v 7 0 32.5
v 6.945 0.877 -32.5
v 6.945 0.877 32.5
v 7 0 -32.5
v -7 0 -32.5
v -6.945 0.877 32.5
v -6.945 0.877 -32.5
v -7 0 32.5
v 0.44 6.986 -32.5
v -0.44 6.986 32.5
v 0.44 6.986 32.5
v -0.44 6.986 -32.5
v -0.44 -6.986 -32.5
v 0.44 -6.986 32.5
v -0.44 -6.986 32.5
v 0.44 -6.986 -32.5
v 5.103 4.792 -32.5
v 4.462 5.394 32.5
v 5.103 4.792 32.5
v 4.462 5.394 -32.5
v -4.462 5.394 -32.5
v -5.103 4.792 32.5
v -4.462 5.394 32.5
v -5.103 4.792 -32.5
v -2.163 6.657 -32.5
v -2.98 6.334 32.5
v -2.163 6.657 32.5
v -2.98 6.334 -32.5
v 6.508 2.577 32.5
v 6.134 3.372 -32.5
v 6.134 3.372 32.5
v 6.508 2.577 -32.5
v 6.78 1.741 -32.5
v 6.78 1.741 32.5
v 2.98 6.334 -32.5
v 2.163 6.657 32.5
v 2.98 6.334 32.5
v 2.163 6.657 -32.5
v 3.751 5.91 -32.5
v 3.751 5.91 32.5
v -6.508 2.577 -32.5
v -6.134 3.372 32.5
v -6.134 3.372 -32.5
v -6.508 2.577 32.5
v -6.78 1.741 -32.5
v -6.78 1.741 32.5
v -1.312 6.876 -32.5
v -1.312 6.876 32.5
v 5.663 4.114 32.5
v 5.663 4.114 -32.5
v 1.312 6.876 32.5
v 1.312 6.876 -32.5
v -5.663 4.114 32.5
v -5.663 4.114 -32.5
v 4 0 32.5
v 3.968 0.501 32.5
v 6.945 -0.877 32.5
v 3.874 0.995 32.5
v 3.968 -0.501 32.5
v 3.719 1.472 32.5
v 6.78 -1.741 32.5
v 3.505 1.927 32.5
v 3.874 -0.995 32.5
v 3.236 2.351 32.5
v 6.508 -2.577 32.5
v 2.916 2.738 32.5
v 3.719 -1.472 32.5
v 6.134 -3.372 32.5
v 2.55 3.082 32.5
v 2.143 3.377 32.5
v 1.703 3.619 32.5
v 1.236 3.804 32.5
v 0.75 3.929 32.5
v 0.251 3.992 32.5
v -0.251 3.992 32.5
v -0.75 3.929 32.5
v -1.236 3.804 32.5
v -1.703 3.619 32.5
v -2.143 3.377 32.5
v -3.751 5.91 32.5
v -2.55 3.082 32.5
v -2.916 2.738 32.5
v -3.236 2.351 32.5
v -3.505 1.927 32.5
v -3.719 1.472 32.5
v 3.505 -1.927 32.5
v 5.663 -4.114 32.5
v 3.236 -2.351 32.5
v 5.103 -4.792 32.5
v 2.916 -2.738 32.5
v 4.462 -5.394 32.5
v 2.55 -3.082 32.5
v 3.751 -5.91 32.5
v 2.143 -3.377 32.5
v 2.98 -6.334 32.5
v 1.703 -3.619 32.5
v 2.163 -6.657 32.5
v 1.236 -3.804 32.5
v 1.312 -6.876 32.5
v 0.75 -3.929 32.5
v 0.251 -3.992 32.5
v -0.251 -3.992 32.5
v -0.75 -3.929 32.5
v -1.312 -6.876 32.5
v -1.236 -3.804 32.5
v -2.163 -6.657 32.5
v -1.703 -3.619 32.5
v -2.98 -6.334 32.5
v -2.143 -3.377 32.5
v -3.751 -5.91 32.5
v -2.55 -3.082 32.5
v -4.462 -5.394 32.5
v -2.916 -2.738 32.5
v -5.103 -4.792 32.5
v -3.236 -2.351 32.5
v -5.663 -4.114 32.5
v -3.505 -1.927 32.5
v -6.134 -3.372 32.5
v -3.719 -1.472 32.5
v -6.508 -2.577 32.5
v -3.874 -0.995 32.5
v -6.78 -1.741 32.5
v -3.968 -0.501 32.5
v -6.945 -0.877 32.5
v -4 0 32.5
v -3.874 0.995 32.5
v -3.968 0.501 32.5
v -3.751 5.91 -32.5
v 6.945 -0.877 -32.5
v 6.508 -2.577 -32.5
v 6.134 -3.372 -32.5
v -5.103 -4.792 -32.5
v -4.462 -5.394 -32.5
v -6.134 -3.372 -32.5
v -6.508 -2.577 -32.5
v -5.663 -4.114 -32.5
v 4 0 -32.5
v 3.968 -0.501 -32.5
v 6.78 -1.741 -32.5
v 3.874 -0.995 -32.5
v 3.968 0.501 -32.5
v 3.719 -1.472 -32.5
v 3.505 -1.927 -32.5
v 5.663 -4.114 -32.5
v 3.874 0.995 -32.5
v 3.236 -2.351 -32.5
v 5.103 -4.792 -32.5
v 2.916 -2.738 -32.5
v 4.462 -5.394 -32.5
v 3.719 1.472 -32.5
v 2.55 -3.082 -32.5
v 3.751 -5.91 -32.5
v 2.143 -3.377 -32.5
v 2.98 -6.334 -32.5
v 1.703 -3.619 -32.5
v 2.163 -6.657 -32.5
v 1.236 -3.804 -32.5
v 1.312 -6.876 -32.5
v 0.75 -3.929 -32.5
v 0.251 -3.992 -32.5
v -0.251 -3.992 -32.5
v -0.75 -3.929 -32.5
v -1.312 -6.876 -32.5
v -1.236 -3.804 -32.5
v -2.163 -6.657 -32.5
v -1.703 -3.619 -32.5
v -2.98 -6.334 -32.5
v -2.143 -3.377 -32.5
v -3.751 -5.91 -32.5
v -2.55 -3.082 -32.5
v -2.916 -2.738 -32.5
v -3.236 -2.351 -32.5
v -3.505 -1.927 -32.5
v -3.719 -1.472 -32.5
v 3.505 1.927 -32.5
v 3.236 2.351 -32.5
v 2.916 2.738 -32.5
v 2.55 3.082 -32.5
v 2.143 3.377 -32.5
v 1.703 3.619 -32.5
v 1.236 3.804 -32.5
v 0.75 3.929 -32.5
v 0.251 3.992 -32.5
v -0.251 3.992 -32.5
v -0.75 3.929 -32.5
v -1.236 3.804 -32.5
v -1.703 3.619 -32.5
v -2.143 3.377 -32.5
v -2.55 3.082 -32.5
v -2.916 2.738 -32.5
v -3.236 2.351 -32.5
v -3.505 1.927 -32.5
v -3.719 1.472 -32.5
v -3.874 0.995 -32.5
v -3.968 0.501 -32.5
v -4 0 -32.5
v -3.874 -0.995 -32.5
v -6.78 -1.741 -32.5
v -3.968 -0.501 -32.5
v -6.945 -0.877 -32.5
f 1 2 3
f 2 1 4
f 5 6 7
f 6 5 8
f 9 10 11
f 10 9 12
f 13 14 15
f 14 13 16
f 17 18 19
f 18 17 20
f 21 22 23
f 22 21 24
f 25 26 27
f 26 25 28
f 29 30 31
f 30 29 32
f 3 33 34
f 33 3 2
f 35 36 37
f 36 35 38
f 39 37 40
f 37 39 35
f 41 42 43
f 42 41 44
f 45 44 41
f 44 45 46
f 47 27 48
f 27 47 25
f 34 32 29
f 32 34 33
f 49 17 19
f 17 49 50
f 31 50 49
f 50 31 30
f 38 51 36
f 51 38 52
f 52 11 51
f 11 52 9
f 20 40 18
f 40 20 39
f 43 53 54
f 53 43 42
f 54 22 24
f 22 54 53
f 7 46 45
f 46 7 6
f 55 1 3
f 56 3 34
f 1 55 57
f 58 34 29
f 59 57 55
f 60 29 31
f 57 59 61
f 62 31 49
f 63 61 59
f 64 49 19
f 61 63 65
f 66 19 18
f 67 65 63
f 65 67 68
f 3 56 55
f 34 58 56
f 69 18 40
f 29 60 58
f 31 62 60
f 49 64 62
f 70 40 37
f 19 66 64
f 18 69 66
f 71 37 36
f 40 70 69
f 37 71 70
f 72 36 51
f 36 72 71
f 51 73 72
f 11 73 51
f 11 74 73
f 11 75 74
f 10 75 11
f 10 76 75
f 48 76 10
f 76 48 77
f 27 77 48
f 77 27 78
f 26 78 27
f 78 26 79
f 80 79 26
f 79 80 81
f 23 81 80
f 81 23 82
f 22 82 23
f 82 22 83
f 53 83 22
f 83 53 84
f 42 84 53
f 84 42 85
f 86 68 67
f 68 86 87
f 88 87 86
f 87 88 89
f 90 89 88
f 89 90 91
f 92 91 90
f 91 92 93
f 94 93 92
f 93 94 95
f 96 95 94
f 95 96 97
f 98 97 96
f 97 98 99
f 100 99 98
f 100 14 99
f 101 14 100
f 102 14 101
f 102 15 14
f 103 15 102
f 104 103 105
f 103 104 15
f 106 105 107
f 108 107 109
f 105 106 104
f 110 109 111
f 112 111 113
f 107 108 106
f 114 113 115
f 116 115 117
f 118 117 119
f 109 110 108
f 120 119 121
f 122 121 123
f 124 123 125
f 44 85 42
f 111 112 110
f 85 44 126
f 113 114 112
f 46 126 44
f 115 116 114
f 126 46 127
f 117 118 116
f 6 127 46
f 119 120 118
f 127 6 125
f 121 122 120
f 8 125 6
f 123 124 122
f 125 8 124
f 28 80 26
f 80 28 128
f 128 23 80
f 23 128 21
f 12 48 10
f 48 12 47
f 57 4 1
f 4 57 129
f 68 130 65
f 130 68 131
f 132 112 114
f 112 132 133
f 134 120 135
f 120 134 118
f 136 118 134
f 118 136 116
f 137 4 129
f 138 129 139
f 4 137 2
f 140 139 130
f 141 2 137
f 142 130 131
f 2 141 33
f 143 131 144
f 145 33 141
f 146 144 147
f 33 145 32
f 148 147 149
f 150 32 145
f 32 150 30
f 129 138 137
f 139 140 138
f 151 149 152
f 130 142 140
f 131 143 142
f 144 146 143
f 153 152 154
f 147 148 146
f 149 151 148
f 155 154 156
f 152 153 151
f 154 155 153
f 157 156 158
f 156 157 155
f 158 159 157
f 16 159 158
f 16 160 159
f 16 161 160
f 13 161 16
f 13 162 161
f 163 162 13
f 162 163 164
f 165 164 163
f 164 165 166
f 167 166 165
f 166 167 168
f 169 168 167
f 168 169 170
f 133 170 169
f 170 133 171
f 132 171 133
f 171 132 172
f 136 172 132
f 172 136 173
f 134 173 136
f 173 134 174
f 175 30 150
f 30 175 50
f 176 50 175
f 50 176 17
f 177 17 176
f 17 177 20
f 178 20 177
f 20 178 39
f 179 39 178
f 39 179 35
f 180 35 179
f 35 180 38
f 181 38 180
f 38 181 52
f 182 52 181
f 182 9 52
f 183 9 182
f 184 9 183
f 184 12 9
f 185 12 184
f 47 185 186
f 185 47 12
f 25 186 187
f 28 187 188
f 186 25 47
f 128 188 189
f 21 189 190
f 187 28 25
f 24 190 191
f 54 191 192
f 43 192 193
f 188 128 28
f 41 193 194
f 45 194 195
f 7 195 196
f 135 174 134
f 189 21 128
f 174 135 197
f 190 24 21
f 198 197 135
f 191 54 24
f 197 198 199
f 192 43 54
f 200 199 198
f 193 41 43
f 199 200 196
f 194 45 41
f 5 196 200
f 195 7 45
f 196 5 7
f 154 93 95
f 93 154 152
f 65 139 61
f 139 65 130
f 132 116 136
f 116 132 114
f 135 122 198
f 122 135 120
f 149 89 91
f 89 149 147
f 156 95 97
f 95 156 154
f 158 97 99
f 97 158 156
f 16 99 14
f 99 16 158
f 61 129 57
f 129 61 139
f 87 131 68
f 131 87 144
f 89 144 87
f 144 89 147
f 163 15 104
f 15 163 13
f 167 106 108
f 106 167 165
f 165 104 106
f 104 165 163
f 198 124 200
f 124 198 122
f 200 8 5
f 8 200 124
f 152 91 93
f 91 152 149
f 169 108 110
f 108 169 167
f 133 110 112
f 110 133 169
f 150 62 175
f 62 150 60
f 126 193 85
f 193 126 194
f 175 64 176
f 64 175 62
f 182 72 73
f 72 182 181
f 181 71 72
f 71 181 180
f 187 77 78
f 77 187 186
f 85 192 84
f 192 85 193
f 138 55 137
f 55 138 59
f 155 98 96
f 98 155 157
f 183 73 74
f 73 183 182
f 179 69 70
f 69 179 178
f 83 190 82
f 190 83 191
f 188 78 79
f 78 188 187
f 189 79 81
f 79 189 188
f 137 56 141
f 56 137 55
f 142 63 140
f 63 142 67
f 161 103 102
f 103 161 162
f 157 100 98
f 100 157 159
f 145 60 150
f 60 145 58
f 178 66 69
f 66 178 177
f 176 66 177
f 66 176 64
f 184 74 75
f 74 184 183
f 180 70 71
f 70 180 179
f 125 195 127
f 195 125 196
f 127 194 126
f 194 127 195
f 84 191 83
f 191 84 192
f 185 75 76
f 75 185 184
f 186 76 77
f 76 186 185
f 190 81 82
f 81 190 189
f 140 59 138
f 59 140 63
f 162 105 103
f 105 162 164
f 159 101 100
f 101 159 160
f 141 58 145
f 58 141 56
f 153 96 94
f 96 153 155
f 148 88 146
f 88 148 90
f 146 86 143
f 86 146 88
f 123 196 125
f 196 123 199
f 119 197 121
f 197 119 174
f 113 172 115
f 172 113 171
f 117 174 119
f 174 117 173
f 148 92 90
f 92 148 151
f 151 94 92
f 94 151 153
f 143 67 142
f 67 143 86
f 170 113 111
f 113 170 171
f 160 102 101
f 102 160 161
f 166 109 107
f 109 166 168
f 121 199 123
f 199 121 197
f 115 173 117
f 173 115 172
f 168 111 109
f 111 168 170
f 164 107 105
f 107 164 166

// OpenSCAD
$fn = 50;


difference() {
	union() {
		translate(v = [0, 0, -32.5000000000]) {
			cylinder(h = 65, r = 7.0000000000);
		}
	}
	union() {
		translate(v = [0, 0, -100.0000000000]) {
			cylinder(h = 200, r = 4);
		}
	}
}
